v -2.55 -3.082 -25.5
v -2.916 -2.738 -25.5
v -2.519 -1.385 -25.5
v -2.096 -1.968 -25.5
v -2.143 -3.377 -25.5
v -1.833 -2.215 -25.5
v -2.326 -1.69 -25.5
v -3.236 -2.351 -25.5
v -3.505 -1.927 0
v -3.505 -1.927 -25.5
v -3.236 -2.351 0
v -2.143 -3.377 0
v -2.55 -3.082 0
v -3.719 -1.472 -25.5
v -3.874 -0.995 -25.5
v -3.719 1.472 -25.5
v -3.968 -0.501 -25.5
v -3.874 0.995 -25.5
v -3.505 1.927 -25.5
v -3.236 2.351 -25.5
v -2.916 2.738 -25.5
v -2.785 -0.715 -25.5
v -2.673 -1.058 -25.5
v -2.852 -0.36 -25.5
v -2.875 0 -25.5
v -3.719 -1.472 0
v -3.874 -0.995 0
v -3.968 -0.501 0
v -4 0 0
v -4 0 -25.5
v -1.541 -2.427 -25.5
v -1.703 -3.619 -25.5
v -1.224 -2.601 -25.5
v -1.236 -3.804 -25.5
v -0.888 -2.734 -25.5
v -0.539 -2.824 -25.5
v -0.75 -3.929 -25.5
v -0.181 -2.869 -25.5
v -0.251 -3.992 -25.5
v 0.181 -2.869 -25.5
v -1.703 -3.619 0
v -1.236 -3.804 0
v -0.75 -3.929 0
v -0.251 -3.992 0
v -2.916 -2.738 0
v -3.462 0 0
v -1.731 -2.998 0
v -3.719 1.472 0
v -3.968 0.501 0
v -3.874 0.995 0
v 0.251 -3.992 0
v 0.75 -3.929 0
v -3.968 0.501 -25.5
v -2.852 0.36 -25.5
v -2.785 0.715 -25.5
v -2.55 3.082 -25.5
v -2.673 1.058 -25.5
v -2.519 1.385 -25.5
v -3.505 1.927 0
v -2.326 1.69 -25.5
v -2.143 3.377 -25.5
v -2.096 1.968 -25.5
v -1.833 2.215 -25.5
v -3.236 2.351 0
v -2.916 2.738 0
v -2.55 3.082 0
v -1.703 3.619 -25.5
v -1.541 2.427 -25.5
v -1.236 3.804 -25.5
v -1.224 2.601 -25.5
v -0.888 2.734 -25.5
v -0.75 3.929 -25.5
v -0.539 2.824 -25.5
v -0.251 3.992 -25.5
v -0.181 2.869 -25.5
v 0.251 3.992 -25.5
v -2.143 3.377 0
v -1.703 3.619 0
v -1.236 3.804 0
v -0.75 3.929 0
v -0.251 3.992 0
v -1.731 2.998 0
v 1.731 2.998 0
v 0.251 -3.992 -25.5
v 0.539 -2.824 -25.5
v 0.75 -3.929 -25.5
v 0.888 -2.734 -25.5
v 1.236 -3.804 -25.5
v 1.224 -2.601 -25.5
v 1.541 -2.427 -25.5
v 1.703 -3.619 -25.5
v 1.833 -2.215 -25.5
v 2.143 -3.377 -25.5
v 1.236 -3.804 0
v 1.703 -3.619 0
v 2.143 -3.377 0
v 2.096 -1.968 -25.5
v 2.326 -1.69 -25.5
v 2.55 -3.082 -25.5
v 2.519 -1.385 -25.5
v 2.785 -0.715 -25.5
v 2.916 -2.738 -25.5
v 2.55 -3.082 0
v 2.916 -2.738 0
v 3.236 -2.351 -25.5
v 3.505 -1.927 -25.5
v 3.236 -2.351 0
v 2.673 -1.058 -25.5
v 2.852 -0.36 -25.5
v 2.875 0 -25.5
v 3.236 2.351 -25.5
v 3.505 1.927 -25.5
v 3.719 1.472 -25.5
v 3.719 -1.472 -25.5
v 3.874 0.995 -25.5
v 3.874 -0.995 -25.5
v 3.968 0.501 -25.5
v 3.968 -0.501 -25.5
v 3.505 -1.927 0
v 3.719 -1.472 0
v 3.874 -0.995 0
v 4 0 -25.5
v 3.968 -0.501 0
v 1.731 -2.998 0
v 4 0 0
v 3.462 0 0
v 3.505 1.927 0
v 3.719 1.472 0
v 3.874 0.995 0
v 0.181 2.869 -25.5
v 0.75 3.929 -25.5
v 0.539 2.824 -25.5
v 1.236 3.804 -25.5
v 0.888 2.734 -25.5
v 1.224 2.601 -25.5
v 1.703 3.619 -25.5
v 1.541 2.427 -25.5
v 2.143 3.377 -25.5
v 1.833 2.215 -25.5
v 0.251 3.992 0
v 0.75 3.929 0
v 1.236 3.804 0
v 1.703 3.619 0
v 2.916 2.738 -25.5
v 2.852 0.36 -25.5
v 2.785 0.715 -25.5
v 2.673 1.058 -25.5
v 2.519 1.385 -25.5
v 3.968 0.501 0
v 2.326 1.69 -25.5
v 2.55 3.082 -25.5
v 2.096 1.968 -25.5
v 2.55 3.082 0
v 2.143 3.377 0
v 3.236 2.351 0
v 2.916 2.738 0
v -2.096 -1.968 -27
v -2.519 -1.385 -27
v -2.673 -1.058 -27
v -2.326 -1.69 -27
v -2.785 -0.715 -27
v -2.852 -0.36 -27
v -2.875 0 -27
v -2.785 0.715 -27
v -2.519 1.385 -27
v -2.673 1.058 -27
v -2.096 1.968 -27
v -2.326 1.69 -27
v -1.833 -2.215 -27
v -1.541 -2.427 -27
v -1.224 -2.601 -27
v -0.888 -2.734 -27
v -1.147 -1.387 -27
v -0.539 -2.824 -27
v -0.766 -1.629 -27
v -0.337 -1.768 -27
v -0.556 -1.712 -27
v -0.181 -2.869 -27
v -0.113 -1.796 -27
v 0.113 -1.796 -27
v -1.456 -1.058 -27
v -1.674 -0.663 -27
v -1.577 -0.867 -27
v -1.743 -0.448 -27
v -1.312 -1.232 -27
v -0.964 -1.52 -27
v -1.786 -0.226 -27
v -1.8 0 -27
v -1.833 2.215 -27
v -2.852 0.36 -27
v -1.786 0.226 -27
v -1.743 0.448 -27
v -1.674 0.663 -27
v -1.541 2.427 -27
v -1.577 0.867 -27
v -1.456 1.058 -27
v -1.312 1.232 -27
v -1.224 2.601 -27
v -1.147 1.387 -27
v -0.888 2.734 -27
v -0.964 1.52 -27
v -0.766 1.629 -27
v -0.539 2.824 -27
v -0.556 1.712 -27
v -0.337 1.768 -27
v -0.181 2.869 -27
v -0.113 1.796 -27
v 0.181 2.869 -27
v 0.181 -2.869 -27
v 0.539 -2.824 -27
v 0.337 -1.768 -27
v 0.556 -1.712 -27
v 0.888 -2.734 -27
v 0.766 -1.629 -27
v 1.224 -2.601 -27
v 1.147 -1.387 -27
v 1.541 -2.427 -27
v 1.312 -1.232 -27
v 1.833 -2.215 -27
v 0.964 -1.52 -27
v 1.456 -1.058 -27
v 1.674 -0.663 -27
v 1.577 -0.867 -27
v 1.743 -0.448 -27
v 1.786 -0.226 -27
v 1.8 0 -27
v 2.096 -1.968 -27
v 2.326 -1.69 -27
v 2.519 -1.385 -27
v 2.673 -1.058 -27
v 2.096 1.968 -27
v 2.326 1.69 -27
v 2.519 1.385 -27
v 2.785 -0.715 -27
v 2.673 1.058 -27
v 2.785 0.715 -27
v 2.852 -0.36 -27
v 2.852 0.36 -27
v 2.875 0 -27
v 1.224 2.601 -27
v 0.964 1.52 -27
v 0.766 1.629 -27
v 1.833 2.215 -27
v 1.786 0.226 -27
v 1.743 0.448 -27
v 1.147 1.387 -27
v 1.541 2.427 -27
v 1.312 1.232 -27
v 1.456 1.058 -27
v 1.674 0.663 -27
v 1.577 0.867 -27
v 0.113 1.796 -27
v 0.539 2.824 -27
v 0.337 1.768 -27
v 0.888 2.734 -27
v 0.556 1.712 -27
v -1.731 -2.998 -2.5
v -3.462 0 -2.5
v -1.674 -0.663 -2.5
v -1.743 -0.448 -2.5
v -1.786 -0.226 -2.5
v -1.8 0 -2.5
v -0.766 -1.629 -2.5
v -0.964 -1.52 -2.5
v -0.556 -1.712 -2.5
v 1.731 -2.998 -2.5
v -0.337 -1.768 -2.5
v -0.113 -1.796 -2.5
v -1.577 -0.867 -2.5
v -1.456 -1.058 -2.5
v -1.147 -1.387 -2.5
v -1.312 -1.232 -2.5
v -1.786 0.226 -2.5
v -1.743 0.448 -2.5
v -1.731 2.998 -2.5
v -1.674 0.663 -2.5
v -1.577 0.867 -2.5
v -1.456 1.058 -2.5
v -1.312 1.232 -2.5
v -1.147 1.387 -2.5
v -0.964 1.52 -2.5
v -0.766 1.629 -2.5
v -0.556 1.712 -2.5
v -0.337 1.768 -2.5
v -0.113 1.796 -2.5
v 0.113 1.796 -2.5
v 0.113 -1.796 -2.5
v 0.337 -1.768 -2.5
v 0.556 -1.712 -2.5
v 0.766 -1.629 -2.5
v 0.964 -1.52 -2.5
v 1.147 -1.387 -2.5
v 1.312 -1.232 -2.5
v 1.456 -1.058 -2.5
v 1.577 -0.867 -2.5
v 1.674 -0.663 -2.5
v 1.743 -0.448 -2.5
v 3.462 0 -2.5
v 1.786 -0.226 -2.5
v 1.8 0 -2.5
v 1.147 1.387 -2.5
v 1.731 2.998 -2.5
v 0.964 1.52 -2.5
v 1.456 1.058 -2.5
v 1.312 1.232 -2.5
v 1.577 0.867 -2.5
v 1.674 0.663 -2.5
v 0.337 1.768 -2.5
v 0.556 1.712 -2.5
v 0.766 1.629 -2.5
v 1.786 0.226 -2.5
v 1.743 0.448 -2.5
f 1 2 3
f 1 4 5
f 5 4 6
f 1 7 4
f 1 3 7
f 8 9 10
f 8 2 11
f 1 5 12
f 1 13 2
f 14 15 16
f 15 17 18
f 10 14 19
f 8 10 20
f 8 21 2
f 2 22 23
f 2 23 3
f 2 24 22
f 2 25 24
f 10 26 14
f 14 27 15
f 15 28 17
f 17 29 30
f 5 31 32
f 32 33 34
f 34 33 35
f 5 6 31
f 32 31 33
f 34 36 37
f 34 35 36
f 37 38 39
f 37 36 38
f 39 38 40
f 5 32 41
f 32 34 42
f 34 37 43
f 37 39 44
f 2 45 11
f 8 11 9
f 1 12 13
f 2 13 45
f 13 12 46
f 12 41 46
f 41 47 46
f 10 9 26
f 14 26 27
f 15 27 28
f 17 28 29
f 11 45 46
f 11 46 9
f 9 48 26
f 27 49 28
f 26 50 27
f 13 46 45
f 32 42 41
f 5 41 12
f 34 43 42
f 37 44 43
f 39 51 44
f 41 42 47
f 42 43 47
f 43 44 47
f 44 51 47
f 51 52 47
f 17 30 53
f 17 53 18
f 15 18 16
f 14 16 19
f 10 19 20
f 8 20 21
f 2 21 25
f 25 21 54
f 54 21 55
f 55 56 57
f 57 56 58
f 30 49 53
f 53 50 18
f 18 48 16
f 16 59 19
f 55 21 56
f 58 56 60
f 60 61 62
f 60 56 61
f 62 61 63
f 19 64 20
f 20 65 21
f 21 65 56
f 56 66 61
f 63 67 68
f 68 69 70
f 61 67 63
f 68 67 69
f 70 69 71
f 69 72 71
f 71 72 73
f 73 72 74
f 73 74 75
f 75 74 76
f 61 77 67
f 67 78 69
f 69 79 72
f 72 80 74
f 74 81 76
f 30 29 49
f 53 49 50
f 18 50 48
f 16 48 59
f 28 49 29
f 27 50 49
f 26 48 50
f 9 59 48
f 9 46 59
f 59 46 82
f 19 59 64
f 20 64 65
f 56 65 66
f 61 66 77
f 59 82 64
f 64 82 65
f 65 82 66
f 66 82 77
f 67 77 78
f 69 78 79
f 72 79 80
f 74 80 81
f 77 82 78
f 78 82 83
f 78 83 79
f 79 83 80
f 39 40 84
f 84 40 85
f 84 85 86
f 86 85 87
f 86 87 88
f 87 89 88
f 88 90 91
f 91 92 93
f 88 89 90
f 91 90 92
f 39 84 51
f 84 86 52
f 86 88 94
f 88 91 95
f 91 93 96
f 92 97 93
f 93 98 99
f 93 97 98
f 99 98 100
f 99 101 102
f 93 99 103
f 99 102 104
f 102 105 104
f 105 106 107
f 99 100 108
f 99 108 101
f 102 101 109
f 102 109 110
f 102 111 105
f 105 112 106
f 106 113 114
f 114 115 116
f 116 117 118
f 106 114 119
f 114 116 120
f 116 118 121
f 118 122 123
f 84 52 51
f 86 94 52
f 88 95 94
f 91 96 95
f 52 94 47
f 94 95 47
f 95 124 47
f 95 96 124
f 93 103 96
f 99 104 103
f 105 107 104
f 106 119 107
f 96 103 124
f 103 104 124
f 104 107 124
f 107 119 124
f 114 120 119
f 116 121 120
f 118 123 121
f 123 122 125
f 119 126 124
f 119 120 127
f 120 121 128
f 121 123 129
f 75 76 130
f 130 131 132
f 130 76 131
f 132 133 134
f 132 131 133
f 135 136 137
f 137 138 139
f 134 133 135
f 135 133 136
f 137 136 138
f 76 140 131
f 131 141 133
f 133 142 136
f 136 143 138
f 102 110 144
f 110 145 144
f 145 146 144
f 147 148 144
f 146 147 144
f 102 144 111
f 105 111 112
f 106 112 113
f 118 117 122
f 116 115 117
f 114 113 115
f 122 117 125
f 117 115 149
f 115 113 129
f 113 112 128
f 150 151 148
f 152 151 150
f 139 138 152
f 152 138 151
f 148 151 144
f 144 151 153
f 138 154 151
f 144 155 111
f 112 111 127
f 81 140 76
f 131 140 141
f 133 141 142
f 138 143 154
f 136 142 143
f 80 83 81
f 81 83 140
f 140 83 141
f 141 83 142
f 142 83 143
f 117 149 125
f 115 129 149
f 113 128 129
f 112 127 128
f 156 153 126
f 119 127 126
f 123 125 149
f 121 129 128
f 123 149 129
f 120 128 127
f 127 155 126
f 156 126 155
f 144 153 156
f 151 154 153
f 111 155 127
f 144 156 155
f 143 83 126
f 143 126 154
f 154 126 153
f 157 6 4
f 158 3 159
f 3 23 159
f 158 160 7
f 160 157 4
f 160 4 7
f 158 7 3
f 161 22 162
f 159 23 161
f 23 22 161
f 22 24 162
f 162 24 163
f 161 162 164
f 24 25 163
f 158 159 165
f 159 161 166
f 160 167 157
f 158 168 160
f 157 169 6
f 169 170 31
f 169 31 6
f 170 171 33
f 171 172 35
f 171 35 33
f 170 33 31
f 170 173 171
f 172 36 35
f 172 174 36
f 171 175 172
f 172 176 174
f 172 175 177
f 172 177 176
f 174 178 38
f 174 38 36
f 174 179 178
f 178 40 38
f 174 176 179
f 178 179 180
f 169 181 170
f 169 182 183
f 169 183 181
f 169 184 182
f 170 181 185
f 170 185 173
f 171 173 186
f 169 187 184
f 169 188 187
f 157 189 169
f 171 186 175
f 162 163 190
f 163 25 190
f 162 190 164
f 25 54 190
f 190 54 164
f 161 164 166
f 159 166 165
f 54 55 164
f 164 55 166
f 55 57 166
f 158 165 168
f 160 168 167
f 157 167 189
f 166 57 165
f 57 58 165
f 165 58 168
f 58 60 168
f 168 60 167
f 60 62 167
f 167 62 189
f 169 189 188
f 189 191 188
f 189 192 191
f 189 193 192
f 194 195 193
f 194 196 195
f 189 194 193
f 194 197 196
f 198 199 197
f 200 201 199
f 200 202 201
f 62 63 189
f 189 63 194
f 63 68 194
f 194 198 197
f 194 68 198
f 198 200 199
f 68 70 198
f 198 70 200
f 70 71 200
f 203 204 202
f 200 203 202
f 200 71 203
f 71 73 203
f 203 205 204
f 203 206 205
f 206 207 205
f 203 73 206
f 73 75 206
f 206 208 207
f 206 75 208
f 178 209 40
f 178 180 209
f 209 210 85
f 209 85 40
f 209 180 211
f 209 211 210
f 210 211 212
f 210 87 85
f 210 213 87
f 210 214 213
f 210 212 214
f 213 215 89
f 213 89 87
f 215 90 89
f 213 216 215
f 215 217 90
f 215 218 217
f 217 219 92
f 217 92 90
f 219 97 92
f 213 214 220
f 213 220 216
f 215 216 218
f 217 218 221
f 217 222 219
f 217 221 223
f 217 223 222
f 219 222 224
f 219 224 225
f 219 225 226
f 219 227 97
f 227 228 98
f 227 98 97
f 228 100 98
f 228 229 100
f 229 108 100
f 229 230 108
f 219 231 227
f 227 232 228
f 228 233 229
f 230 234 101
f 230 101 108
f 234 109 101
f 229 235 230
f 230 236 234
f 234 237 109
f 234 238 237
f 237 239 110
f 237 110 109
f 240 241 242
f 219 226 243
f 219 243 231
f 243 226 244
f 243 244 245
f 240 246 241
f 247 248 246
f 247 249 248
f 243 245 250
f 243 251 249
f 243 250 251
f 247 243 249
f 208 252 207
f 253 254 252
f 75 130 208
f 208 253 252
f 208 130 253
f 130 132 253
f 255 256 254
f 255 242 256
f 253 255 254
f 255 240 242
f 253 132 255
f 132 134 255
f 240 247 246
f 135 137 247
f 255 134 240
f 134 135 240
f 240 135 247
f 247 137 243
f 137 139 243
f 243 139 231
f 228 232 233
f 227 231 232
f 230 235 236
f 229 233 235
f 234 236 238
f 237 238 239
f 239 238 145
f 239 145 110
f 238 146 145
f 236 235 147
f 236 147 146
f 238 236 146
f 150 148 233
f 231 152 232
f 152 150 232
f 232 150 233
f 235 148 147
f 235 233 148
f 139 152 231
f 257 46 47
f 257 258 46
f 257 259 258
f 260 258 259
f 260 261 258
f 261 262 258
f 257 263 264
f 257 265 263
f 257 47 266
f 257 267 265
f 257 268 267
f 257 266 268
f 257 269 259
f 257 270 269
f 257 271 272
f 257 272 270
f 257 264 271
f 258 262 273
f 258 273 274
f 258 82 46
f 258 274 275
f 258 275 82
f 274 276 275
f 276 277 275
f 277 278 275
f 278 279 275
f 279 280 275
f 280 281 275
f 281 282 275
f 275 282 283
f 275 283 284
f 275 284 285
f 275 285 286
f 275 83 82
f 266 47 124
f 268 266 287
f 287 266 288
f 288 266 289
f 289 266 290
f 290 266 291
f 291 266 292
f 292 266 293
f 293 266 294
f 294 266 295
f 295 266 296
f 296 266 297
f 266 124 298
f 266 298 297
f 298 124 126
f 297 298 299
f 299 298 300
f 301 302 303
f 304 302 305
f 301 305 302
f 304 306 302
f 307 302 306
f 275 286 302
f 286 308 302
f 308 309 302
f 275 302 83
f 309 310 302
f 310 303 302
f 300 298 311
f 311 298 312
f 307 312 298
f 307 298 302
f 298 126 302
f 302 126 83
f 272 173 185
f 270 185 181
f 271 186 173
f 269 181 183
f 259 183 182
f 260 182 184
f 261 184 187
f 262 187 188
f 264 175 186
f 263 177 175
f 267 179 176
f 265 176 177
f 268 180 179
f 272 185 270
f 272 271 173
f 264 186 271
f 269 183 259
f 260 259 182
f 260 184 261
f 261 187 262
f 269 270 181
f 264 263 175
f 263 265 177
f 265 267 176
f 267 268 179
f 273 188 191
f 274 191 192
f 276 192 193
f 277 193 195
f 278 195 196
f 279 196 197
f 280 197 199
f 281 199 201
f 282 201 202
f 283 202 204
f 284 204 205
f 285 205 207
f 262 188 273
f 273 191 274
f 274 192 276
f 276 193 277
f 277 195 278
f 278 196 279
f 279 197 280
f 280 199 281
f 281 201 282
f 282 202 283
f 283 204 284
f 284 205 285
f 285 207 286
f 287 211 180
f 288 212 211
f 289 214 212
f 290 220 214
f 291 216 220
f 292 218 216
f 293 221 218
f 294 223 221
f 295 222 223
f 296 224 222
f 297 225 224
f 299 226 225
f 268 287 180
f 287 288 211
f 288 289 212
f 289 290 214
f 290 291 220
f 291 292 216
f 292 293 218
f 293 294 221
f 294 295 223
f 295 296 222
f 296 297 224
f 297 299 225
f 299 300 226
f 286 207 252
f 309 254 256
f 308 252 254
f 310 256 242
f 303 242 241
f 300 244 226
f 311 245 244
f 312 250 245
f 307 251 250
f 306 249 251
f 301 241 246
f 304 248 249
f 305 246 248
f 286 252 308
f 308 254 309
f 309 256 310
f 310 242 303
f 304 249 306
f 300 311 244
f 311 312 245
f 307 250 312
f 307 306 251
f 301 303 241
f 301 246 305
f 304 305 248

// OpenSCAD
$fn = 50;

difference() {
	union() {
		translate(v = [0, 0, -25.5]) {
			cylinder(h = 25.5, r = 4.0);
		}
		#translate(v = [0, 0, -27.0]) {
			cylinder(h = 27, r = 2.875);
		}
	}
	union() {
		translate(v = [0, 0, 0]) {
			rotate(a = [0, 0, 0]) {
				difference() {
					union() {
						translate(v = [0, 0, -2.5]) {
							linear_extrude(height = 2.5) {
								polygon(points = [[3.4619999999999997, 0.0], [1.7310000000000003, 2.9981799479017264], [-1.7309999999999992, 2.9981799479017264], [-3.4619999999999997, 4.2397272186481365e-16], [-1.7310000000000014, -2.998179947901726], [1.7309999999999977, -2.9981799479017277]]);
							}
						}
					}
					union();
				}
			}
		}
		#translate(v = [0, 0, -100.0]) {
			cylinder(h = 200, r = 1.8);
		}
	}
}
